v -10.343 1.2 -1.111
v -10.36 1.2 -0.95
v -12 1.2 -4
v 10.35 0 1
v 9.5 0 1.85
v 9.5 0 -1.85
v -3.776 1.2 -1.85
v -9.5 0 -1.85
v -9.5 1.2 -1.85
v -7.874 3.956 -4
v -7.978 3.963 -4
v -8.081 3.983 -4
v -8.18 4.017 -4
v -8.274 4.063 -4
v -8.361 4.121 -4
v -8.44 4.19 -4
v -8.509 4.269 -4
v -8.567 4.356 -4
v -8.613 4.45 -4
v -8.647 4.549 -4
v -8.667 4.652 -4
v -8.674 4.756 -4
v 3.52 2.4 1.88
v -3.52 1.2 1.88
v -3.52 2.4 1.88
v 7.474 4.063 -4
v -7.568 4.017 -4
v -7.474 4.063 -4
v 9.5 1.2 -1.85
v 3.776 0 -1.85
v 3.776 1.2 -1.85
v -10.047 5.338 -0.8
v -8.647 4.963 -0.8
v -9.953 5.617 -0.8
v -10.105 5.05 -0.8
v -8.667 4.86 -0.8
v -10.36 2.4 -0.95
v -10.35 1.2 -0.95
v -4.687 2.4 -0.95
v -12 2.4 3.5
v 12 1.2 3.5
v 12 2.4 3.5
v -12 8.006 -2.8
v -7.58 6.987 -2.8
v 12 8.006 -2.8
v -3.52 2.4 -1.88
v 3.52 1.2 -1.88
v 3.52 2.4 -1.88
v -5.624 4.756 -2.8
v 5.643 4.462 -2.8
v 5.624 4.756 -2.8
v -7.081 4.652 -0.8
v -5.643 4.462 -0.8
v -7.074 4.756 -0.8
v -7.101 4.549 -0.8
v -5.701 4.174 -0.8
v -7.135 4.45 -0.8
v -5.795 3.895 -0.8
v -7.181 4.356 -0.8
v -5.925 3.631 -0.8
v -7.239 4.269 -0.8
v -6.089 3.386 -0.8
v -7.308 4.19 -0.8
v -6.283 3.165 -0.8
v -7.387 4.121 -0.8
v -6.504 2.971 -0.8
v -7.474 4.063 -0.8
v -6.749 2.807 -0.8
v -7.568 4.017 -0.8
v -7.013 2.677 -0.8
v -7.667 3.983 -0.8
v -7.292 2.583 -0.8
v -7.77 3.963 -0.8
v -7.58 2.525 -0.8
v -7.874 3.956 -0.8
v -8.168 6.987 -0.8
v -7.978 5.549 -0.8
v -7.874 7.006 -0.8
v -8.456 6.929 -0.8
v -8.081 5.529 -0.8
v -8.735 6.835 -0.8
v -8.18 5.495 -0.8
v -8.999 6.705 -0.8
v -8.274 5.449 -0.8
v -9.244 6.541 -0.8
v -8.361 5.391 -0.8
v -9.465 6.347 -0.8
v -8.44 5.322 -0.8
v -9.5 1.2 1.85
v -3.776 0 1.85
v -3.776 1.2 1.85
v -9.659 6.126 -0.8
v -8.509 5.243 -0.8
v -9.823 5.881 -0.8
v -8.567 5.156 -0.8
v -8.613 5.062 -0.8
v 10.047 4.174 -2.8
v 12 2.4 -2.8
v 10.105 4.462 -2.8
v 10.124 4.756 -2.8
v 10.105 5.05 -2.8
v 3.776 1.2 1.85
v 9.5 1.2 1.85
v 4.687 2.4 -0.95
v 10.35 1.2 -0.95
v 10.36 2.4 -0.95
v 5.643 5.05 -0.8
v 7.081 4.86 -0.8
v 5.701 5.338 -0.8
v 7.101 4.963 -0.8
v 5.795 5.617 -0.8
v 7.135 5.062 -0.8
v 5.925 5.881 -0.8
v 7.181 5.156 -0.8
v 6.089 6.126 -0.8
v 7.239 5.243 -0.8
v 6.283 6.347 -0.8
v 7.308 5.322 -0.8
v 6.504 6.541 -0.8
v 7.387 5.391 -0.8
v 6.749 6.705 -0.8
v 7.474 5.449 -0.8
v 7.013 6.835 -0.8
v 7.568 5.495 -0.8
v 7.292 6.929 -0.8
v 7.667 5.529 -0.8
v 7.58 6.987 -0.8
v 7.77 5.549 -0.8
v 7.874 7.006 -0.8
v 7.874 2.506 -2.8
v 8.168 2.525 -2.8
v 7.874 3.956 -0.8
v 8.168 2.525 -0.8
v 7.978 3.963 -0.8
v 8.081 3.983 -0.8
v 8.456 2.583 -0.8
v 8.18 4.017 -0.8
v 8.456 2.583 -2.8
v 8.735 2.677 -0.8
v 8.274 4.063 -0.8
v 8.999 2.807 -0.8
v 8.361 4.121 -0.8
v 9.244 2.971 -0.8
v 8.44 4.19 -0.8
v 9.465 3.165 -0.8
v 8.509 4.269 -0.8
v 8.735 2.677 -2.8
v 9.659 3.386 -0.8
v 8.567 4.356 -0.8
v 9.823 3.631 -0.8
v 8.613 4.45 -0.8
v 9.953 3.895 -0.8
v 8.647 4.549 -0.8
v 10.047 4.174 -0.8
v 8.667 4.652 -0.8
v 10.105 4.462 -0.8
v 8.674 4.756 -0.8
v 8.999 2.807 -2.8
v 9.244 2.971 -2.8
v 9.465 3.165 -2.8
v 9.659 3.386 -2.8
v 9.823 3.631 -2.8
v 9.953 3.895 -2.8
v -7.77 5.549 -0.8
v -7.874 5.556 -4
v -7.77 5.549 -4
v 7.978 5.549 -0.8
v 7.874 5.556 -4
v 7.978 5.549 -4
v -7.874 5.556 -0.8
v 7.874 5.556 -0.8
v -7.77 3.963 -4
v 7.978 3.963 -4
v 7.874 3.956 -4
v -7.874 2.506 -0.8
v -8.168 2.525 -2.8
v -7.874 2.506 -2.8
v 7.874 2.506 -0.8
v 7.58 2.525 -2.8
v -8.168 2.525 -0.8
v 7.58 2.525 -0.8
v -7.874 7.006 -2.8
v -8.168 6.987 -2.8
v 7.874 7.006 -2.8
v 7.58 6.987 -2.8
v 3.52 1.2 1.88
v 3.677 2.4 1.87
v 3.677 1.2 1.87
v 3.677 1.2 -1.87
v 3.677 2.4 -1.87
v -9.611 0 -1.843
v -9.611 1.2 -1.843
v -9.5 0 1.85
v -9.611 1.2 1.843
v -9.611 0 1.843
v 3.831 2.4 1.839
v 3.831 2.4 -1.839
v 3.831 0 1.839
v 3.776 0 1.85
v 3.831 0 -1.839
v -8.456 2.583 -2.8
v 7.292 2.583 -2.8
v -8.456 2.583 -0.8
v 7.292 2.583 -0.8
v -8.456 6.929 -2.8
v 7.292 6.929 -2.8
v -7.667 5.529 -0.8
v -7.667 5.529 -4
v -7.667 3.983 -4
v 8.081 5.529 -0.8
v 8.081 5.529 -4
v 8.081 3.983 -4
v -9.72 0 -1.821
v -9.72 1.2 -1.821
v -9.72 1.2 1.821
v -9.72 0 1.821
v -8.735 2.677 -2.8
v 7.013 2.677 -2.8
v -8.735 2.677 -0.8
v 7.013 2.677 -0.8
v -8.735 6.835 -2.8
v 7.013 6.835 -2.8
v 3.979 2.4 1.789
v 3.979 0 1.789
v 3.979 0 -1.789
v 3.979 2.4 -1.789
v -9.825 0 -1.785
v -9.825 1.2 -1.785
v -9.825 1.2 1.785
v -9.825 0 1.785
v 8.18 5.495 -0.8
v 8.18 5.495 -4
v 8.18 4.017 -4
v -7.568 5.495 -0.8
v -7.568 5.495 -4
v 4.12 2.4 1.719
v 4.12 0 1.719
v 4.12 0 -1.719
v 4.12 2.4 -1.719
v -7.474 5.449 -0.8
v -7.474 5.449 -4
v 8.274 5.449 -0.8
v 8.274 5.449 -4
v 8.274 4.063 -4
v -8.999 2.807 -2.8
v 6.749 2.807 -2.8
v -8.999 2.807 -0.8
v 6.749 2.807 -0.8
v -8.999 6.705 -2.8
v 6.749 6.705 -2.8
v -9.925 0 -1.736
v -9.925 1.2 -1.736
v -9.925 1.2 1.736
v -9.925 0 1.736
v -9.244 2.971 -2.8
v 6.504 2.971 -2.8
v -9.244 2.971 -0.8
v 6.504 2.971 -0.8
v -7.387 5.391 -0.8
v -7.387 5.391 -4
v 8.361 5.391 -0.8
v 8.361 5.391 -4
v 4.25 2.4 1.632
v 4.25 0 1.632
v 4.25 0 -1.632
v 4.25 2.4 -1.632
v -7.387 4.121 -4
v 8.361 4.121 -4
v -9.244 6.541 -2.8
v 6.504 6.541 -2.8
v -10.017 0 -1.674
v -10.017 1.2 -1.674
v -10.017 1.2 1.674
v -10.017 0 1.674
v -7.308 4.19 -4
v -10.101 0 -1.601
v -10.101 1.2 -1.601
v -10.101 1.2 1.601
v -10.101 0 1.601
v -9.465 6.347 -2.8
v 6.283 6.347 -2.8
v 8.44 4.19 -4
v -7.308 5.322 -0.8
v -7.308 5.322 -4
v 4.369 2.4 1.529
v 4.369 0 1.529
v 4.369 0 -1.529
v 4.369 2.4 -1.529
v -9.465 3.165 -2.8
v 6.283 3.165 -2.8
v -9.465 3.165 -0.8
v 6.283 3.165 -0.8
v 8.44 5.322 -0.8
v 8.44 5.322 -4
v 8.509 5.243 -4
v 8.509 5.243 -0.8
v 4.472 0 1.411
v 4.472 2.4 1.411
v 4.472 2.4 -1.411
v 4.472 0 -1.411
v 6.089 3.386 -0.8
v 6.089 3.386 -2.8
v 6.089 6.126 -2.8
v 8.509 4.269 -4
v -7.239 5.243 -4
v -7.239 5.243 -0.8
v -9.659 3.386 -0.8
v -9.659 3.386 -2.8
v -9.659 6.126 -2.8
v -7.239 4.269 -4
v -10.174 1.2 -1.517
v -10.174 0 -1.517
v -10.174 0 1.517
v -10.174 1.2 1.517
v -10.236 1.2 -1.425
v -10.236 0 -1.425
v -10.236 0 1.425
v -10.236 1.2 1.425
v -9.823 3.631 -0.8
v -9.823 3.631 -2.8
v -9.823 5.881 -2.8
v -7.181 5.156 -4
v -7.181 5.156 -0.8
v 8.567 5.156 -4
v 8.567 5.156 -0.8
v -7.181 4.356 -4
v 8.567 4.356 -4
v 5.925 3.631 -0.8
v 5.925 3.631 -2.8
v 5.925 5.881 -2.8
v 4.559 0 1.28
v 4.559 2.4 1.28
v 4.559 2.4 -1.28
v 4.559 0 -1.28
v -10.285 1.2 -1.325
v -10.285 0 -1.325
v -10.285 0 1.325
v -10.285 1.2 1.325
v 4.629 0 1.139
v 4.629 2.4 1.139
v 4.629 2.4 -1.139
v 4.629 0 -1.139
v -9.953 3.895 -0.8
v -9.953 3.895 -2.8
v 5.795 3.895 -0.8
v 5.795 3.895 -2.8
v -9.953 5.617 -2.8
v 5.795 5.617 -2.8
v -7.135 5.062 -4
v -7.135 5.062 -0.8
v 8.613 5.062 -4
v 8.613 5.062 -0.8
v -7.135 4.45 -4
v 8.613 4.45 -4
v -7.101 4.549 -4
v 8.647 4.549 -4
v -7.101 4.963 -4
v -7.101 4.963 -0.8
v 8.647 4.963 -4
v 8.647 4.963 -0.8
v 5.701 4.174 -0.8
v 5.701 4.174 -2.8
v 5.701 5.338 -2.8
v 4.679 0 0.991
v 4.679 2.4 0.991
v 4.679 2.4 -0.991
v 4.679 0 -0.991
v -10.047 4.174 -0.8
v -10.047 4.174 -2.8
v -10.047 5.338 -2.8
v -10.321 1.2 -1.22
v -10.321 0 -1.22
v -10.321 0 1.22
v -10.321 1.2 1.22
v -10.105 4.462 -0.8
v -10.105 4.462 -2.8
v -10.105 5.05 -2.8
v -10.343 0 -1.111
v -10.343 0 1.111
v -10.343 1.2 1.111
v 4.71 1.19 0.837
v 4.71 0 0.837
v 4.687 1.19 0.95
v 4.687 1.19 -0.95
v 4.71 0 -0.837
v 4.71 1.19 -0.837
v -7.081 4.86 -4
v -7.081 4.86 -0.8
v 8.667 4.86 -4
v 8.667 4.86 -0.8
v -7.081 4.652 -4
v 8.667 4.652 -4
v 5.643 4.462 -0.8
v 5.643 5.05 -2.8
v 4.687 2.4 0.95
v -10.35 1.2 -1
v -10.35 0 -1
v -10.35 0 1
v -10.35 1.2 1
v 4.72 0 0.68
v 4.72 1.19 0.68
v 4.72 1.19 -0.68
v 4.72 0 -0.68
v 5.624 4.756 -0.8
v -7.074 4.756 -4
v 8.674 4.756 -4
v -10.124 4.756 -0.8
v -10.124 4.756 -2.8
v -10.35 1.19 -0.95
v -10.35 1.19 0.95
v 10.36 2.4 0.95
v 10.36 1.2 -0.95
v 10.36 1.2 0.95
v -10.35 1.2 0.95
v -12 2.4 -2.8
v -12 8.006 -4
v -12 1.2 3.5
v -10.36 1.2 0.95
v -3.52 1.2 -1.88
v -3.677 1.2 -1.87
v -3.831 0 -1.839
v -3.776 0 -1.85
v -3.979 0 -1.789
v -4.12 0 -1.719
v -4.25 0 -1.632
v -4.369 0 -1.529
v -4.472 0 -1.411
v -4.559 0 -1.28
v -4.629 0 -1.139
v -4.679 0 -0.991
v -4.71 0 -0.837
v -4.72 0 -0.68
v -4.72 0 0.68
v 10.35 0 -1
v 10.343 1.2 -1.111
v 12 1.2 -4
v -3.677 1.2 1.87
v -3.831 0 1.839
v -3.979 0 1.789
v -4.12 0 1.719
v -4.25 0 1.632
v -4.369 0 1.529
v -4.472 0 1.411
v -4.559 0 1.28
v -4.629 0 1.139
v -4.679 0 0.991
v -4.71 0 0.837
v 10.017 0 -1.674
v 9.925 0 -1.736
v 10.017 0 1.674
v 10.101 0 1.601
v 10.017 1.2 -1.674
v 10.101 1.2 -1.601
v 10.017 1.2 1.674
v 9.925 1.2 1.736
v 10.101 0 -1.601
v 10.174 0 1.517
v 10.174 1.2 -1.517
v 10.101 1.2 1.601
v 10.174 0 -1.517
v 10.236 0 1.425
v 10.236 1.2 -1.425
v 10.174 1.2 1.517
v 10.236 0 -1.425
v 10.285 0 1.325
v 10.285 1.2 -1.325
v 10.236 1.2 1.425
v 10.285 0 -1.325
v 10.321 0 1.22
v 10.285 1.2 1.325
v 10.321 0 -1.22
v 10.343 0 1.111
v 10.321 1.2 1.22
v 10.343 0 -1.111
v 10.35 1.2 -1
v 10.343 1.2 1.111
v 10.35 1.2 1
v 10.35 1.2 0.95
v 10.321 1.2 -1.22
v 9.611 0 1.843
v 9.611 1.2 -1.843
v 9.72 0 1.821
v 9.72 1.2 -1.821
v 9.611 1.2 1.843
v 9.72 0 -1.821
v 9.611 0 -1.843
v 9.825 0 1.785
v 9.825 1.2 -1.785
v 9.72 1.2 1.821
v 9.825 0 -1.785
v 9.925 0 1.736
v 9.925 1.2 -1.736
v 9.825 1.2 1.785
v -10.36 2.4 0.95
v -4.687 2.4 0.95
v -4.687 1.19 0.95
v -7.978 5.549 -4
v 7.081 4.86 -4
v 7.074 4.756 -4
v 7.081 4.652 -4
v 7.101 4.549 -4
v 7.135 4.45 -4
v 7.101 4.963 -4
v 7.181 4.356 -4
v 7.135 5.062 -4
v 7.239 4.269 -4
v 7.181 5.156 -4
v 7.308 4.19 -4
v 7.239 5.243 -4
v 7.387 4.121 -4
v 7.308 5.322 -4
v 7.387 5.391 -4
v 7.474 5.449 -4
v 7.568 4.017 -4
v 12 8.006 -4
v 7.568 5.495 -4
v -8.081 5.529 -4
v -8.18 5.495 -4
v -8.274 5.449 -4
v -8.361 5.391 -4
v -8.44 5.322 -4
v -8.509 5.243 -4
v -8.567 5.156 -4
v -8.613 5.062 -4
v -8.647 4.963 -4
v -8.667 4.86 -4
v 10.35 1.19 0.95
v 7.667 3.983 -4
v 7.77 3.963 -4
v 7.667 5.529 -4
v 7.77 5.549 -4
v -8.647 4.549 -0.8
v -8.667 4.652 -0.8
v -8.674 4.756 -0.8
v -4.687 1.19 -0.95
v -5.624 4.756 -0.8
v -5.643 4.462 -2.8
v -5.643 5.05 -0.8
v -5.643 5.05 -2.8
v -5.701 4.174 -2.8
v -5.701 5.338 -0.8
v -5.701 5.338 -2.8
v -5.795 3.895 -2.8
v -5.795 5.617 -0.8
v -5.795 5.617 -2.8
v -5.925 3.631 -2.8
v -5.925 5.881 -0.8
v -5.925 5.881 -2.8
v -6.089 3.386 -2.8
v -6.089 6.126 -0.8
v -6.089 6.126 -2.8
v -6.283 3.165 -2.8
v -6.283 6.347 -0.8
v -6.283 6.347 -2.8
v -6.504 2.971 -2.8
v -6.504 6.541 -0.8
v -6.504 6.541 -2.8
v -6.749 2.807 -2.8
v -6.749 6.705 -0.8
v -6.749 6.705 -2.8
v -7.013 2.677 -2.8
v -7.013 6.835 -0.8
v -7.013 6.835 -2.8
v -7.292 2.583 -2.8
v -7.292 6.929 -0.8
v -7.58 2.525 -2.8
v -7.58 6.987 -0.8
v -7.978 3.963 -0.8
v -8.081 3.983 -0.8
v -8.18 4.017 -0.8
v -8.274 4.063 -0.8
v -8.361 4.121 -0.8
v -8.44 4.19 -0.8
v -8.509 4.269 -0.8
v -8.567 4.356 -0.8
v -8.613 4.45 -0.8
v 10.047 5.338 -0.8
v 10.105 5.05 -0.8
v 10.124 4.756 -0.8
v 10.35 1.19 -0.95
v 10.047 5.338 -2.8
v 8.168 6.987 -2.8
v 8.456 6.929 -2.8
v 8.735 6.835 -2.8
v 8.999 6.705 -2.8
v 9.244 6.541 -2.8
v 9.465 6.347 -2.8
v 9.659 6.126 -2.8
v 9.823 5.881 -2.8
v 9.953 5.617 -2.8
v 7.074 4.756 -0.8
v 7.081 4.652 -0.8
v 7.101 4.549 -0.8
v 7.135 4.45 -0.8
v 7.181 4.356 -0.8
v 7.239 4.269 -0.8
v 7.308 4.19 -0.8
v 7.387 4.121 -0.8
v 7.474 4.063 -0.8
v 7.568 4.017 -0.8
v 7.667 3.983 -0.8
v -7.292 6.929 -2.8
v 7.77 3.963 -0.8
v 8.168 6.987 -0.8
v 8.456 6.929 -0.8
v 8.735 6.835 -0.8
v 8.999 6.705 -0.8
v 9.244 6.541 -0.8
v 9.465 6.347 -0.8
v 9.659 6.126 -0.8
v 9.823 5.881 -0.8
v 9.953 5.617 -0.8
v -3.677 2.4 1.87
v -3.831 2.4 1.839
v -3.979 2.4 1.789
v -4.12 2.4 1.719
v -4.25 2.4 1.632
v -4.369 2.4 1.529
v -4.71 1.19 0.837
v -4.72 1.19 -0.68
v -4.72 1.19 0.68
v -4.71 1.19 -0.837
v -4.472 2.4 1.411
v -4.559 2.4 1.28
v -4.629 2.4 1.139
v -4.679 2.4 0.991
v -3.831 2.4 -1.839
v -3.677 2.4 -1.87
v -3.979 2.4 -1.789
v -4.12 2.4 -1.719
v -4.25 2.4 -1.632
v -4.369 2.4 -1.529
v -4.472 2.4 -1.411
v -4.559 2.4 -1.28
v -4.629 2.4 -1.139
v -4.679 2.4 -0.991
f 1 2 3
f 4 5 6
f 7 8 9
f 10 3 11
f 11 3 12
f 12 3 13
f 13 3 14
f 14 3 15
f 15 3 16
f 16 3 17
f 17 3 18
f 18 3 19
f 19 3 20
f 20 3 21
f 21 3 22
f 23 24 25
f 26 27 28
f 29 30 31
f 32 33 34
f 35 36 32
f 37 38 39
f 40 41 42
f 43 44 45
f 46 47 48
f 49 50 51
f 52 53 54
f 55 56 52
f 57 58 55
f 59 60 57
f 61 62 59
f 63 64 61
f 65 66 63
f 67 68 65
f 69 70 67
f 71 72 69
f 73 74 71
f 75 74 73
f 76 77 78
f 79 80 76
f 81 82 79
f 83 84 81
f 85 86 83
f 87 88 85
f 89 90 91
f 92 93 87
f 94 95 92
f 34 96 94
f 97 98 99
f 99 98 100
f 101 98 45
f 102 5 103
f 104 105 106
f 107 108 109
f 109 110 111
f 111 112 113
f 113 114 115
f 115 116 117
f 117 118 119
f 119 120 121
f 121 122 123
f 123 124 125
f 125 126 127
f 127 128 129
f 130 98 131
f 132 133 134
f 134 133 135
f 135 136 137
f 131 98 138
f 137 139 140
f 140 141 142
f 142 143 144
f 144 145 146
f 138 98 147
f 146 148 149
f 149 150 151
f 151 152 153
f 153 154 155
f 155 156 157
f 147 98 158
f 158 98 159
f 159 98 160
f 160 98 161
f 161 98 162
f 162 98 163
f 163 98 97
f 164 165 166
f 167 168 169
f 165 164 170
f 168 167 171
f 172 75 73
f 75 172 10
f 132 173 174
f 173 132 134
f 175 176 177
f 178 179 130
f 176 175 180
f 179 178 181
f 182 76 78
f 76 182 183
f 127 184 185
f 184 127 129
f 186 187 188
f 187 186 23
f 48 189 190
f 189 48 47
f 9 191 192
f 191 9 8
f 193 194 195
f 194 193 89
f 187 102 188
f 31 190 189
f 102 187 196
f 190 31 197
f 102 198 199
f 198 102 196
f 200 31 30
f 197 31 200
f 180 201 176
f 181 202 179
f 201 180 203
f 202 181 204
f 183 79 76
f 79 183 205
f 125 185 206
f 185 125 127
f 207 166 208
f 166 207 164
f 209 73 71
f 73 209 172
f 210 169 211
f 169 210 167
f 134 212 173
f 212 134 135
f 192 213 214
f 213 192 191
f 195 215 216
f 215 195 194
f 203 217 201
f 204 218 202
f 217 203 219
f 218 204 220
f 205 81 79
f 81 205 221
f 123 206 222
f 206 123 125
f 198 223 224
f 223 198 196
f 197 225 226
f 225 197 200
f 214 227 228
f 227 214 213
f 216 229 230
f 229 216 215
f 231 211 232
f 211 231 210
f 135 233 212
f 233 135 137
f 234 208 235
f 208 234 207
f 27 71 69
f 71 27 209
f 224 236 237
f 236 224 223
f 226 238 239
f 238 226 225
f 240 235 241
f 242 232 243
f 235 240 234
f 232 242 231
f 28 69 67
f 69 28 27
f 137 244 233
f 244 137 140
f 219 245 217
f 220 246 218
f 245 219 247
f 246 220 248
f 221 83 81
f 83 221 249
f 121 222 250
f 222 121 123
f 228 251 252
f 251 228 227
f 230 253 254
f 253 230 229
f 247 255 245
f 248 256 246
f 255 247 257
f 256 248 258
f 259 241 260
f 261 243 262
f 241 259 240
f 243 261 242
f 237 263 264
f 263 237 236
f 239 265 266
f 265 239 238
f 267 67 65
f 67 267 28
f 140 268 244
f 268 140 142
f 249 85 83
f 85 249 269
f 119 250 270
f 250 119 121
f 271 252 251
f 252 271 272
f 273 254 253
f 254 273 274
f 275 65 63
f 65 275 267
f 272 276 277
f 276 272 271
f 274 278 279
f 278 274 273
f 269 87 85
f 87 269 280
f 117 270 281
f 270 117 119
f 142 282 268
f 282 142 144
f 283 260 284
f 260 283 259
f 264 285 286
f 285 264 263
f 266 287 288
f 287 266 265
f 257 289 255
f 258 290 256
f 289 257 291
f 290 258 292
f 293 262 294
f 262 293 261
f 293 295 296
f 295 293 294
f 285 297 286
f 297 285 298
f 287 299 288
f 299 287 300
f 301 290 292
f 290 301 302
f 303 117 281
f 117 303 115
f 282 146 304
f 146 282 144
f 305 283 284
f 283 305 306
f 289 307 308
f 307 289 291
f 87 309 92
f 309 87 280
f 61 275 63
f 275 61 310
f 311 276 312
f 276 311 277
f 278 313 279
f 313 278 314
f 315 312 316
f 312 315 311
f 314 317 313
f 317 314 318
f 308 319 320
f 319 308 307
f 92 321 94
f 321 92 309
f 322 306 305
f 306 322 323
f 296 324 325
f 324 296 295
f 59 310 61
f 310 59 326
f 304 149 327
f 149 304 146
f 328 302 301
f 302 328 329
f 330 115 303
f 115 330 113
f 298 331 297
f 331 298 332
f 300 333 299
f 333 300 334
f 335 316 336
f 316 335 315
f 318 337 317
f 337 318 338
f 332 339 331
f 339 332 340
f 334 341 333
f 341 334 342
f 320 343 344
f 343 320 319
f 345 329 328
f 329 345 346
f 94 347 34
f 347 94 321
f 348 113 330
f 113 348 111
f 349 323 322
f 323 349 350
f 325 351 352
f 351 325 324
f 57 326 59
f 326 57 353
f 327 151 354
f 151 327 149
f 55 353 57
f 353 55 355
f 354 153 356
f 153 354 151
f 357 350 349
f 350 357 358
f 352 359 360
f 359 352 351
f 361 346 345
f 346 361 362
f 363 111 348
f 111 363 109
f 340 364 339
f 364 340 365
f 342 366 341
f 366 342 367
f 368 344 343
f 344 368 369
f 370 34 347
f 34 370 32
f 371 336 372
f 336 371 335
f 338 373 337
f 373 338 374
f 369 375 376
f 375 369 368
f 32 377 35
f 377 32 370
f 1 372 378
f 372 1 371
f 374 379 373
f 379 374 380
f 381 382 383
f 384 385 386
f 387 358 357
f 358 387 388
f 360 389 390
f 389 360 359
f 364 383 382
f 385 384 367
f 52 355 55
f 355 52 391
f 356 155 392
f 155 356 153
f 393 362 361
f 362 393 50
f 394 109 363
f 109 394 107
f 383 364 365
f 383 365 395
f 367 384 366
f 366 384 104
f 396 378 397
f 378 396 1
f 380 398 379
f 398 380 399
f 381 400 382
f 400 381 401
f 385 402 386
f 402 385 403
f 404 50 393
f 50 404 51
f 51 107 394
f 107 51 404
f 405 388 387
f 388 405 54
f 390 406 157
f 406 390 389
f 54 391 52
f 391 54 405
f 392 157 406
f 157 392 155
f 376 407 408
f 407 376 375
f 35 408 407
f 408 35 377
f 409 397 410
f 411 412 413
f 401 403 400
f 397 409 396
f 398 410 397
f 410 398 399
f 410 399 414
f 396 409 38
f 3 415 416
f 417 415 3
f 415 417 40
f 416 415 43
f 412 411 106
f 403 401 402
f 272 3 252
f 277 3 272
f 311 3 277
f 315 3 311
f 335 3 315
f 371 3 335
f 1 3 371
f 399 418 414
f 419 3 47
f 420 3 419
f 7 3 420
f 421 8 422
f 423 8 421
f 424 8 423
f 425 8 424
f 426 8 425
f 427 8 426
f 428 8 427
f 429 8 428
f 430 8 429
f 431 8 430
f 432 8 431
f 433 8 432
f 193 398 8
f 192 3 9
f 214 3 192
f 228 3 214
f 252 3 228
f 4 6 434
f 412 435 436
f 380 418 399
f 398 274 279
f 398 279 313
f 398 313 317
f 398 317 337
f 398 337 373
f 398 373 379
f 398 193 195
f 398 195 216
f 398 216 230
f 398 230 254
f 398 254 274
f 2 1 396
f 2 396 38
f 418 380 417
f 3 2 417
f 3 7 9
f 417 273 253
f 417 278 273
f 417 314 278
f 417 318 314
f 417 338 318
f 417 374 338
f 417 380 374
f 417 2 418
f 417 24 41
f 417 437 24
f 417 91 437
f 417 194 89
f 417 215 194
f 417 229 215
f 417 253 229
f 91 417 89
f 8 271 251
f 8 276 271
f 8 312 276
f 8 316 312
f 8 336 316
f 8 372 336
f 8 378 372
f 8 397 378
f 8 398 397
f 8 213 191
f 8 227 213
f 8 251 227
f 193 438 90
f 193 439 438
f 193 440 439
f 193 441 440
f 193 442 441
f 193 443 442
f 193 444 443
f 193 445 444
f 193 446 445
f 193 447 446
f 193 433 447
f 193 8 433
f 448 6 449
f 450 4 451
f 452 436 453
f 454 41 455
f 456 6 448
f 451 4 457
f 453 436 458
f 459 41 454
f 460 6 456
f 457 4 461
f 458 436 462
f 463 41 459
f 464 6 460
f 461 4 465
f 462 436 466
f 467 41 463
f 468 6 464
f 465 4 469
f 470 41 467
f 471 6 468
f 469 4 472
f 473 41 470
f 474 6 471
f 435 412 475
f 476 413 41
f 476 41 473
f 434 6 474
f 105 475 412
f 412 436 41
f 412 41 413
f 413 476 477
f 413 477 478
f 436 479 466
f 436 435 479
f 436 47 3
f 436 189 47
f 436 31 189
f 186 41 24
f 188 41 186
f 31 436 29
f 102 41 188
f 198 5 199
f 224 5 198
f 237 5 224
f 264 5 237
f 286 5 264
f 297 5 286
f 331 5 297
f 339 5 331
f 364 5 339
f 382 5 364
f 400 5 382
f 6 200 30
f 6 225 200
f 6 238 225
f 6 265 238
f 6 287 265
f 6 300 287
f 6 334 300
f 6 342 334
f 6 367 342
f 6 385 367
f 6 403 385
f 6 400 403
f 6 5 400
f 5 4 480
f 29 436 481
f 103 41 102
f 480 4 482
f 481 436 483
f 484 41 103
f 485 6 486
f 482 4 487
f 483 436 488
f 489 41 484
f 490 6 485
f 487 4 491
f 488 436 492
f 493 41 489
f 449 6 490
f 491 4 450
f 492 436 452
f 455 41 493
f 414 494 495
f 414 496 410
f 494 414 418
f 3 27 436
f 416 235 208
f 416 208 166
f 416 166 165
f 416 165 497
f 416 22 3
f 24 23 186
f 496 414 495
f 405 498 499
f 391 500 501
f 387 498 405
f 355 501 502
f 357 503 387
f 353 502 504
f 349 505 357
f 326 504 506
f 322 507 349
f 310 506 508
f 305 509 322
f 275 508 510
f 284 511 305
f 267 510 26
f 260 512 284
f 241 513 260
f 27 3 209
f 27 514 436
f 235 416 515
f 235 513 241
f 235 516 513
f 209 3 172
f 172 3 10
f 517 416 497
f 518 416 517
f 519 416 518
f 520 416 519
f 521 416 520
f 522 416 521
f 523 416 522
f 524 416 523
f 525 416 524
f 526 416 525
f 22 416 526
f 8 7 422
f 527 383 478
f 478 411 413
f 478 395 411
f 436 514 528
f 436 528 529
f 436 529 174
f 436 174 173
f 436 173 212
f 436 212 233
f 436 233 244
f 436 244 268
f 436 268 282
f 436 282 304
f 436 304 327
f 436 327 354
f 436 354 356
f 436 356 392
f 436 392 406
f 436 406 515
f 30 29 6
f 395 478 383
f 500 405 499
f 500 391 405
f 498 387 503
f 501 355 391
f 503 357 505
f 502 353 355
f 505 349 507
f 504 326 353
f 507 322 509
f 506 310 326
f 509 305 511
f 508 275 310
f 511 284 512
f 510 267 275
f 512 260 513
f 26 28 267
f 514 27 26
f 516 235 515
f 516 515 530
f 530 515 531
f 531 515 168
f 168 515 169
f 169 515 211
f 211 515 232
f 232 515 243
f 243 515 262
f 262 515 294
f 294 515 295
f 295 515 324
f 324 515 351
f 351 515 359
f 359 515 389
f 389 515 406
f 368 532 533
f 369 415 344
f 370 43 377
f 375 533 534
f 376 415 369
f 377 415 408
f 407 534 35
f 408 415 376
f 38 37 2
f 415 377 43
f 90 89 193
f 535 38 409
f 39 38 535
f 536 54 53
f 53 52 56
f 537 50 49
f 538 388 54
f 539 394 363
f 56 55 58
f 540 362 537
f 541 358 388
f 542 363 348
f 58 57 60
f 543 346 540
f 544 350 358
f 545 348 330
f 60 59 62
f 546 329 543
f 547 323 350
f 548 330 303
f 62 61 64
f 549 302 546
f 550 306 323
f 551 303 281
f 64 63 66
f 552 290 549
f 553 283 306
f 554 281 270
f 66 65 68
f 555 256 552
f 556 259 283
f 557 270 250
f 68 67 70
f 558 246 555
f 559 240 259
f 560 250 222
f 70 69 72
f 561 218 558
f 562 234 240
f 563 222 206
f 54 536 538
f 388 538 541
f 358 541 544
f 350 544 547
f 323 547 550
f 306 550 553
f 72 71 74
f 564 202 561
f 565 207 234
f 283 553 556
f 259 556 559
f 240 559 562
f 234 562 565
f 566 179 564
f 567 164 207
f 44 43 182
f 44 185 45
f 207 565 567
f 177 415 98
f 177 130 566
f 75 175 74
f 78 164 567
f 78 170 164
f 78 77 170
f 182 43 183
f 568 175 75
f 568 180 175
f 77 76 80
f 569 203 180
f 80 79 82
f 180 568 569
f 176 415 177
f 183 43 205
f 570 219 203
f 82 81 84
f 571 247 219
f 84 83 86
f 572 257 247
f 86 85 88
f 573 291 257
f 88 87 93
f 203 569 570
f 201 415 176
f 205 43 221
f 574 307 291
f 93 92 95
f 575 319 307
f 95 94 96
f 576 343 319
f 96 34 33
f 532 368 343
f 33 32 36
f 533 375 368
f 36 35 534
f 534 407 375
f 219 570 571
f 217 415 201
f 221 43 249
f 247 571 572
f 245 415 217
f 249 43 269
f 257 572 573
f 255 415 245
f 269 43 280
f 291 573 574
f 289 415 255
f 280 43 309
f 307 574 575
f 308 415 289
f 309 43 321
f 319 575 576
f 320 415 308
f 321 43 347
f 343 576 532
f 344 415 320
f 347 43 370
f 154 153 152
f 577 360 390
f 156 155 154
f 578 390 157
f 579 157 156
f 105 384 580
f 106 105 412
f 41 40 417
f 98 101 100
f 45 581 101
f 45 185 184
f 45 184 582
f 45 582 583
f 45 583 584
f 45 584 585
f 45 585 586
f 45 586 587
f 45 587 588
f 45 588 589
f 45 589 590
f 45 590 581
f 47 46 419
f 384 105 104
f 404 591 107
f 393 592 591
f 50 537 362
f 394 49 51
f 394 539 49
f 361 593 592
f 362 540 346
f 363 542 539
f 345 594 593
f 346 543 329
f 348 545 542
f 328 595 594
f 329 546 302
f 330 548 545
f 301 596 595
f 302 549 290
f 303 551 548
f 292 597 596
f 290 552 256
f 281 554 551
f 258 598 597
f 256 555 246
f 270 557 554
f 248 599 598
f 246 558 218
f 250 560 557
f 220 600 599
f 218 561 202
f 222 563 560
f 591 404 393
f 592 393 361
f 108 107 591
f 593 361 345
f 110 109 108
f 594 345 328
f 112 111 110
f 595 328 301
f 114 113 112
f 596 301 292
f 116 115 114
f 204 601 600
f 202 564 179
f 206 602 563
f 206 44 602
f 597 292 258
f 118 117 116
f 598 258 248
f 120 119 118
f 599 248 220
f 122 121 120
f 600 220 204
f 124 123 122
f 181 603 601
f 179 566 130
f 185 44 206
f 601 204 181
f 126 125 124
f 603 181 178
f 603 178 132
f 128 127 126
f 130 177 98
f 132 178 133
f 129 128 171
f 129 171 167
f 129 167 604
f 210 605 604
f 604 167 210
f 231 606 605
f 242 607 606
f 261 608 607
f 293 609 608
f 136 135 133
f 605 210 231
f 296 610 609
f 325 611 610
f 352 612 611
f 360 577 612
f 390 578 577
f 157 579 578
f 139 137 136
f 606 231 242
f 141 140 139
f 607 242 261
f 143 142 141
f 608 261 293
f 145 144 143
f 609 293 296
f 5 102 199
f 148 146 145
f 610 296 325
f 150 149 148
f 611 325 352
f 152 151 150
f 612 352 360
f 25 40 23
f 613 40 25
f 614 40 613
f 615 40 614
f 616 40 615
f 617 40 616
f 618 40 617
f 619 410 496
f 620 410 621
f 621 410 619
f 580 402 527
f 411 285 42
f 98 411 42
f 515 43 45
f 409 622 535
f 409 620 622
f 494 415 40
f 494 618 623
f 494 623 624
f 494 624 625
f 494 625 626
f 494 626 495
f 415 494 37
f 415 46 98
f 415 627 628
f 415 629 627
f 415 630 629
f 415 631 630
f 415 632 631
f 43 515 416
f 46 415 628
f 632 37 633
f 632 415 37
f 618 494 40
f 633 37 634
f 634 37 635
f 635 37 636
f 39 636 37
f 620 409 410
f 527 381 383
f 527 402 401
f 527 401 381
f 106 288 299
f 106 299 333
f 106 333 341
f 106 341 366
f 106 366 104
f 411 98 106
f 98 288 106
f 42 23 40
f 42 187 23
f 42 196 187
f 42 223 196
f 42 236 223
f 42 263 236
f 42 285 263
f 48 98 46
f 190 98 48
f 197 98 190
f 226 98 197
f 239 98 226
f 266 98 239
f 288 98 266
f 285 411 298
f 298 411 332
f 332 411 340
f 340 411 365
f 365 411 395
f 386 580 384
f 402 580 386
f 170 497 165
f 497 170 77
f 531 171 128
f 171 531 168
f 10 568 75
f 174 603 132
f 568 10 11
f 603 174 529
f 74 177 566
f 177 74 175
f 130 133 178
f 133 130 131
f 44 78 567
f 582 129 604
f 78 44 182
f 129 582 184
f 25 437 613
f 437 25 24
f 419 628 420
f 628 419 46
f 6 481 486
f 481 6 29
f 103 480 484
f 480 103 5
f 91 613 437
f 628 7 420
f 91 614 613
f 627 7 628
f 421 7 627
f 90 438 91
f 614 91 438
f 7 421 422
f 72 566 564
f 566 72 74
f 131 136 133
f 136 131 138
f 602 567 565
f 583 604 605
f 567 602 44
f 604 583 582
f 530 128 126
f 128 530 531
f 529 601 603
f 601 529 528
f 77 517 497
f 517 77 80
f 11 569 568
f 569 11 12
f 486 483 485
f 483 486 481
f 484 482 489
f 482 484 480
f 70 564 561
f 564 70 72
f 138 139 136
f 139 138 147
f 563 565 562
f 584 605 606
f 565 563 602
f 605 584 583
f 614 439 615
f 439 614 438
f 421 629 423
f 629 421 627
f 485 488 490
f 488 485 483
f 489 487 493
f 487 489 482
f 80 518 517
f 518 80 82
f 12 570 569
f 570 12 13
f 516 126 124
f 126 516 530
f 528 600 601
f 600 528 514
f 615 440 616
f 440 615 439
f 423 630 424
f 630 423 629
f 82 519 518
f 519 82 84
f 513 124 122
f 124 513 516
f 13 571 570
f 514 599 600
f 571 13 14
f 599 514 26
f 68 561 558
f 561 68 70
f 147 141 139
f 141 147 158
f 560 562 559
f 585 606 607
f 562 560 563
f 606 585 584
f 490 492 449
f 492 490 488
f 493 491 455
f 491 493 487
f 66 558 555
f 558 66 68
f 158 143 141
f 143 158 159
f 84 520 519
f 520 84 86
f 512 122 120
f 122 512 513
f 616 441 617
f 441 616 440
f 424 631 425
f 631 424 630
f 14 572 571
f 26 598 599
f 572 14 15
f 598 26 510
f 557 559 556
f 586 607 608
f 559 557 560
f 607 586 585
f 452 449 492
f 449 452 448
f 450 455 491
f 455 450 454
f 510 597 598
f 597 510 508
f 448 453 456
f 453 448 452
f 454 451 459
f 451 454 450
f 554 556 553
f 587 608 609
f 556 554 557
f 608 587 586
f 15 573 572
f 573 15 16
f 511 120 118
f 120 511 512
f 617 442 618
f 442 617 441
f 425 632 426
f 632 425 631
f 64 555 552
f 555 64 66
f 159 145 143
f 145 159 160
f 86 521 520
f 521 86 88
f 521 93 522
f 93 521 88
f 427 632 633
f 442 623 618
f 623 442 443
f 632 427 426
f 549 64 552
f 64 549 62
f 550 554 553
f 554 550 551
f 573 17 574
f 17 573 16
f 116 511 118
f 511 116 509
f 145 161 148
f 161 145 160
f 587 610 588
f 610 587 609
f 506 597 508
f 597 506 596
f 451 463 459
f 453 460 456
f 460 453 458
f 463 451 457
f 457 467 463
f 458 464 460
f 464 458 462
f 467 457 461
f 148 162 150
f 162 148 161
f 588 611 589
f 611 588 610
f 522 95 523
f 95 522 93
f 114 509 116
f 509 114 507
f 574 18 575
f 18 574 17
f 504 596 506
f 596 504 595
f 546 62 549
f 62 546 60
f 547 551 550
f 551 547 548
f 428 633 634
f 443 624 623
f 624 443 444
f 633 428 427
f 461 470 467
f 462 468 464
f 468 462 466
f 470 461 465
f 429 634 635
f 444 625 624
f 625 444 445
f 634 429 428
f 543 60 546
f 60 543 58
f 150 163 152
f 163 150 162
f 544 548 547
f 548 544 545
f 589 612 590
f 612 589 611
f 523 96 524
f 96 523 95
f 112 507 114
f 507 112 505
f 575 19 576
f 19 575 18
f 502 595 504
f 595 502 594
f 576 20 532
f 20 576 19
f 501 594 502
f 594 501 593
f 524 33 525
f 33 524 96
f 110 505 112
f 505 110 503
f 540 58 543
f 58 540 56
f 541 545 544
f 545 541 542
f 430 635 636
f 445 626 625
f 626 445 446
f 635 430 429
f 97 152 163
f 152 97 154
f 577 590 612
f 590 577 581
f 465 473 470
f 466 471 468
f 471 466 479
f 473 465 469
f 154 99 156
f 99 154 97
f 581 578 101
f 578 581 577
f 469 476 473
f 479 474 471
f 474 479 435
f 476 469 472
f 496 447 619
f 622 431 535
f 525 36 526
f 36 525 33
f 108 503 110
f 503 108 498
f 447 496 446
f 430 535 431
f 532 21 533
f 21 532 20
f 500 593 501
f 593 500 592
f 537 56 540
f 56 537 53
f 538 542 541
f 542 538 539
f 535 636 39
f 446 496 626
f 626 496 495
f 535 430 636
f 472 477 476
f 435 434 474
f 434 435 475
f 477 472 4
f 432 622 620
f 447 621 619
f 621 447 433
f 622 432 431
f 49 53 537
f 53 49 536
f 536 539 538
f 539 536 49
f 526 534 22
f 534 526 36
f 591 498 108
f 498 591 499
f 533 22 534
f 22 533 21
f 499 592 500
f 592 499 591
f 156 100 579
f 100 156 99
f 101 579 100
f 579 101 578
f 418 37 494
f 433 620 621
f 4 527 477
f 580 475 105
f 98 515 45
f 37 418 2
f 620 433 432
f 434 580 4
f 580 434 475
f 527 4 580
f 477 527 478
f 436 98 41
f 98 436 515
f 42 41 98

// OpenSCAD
// USB-C bracket for the iPod 4th gen (A1059) dock-connector opening.
// Holds an Adafruit #6050 sunken USB-C breakout so its receptacle sits in the opening,
// and takes plug forces off the solder joints.
//
// Render: openscad -o hardware/usb-c-bracket.stl hardware/usb-c-bracket.scad
// Change values with -D, e.g. -D slot_w=20.6 -D wall_t=1.4
//
// Coordinates: x across the opening, y into the iPod (y = 0 is the outside face of the
// case), z through the case thickness (z = 0 is the middle of the opening).
//
// Parts, front to back:
//   bezel   fills the opening from the outside face, with a window for the receptacle;
//   flange  sits against the inside of the case wall around the opening (pull-out stop);
//   base    lies on the inside of the case and is glued to it (takes the push-in force);
//   bosses  two posts for M2 screws through the breakout's mounting holes.
//
// Original design for retro-ipod-spotify-revival (Apache-2.0), not a remix.

/* [iPod case: measure these with calipers] */
// Width of the dock-connector opening [MEASURE]
slot_w = 21.0;
// Height of the opening, through the case thickness [MEASURE]
slot_h = 4.0;
// Corner radius of the opening [MEASURE]
slot_r = 1.0;
// Wall thickness around the opening [MEASURE]
wall_t = 1.2;
// From the middle of the opening to the inside surface the base is glued to [MEASURE]
floor_to_slot_center = 4.0;
// Gap on each side of the bezel, so it slides in
fit = 0.15;

/* [Adafruit #6050 sunken USB-C breakout, from Adafruit's board file] */
pcb_w = 20.32;
pcb_d = 13.97;
pcb_t = 1.6;
// Receptacle shell, and how far it sticks out past the board edge
usbc_w = 8.94;
usbc_h = 3.26;
usbc_overhang = 0.56;
// Mounting holes (2.5 mm, plated): spacing, and distance in from the receptacle edge
hole_dx = 15.748;
hole_from_edge = 3.556;
// Height of the board's middle above the middle of the opening (sunken: about 0) [MEASURE]
pcb_z = 0;

/* [Bracket] */
flange_t = 1.2;
flange_margin = 1.5;
base_t = 1.2;
boss_d = 4.5;
// Pilot hole for M2 self-tapping screws
pilot_d = 1.6;
// Clearance around the receptacle shell in the bezel window
window_clear = 0.25;

$fn = 48;

pcb_edge_y = wall_t;                       // board edge rests on the back of the bezel
face_recess = pcb_edge_y - usbc_overhang;  // receptacle face behind the outside face
floor_z = -floor_to_slot_center;
base_top = floor_z + base_t;
pcb_bottom = pcb_z - pcb_t / 2;
boss_h = pcb_bottom - base_top;
hole_y = pcb_edge_y + hole_from_edge;
base_depth = hole_y + boss_d / 2 + 1.0 - (wall_t + flange_t);
flange_w = slot_w + 2 * flange_margin;
flange_top = slot_h / 2 + flange_margin;

assert(boss_h >= 1.2, str("bosses only ", boss_h, " mm tall: raise floor_to_slot_center or lower pcb_z"));
// A USB-C plug's shell is 8.25 x 2.4 mm. If the window is taller than the opening, the
// bezel is just its two sides, which is fine.
assert(slot_w - 2 * fit >= usbc_w + 2 * window_clear + 2.0, "opening too narrow: no room for the bezel's sides");
assert(slot_h - 2 * fit >= 2.6, "opening too low for a USB-C plug");
echo(str("receptacle face sits ", face_recess, " mm behind the outside face"));
if (face_recess > 0.8) echo("WARNING: more than 0.8 mm recess; thick plug overmolds may not click in");

module rounded_rect(w, h, r) {
    offset(r = r) square([w - 2 * r, h - 2 * r], center = true);
}

// A 2D shape in x-z, extruded along y from y0 to y1
module slab_xz(y0, y1) {
    translate([0, y1, 0]) rotate([90, 0, 0]) linear_extrude(y1 - y0) children();
}

module window() {
    slab_xz(-1, pcb_edge_y + 0.01)
        translate([0, pcb_z]) rounded_rect(usbc_w + 2 * window_clear, usbc_h + 2 * window_clear, 1.2);
}

module bracket() {
    difference() {
        union() {
            // bezel in the opening
            slab_xz(0, wall_t) rounded_rect(slot_w - 2 * fit, slot_h - 2 * fit, max(0.01, slot_r - fit));
            // flange behind the wall, down to the floor
            slab_xz(wall_t, wall_t + flange_t)
                translate([-flange_w / 2, floor_z]) square([flange_w, flange_top - floor_z]);
            // base on the floor
            translate([-flange_w / 2, wall_t + flange_t, floor_z]) cube([flange_w, base_depth, base_t]);
            // screw bosses
            for (sx = [-1, 1])
                translate([sx * hole_dx / 2, hole_y, base_top - 0.01]) cylinder(d = boss_d, h = boss_h + 0.01);
        }
        window();
        // slot in the flange for the board to pass through
        slab_xz(pcb_edge_y - 0.01, wall_t + flange_t + 0.01)
            translate([0, pcb_z]) square([pcb_w + 0.4, pcb_t + 0.3], center = true);
        // the receptacle's lower half and the board's underside need room above the base
        slab_xz(pcb_edge_y - 0.01, wall_t + flange_t + 0.01)
            translate([0, pcb_z]) rounded_rect(usbc_w + 2 * window_clear, usbc_h + 2 * window_clear, 1.2);
        // pilot holes
        for (sx = [-1, 1])
            translate([sx * hole_dx / 2, hole_y, floor_z - 1]) cylinder(d = pilot_d, h = 20);
    }
}

bracket();
